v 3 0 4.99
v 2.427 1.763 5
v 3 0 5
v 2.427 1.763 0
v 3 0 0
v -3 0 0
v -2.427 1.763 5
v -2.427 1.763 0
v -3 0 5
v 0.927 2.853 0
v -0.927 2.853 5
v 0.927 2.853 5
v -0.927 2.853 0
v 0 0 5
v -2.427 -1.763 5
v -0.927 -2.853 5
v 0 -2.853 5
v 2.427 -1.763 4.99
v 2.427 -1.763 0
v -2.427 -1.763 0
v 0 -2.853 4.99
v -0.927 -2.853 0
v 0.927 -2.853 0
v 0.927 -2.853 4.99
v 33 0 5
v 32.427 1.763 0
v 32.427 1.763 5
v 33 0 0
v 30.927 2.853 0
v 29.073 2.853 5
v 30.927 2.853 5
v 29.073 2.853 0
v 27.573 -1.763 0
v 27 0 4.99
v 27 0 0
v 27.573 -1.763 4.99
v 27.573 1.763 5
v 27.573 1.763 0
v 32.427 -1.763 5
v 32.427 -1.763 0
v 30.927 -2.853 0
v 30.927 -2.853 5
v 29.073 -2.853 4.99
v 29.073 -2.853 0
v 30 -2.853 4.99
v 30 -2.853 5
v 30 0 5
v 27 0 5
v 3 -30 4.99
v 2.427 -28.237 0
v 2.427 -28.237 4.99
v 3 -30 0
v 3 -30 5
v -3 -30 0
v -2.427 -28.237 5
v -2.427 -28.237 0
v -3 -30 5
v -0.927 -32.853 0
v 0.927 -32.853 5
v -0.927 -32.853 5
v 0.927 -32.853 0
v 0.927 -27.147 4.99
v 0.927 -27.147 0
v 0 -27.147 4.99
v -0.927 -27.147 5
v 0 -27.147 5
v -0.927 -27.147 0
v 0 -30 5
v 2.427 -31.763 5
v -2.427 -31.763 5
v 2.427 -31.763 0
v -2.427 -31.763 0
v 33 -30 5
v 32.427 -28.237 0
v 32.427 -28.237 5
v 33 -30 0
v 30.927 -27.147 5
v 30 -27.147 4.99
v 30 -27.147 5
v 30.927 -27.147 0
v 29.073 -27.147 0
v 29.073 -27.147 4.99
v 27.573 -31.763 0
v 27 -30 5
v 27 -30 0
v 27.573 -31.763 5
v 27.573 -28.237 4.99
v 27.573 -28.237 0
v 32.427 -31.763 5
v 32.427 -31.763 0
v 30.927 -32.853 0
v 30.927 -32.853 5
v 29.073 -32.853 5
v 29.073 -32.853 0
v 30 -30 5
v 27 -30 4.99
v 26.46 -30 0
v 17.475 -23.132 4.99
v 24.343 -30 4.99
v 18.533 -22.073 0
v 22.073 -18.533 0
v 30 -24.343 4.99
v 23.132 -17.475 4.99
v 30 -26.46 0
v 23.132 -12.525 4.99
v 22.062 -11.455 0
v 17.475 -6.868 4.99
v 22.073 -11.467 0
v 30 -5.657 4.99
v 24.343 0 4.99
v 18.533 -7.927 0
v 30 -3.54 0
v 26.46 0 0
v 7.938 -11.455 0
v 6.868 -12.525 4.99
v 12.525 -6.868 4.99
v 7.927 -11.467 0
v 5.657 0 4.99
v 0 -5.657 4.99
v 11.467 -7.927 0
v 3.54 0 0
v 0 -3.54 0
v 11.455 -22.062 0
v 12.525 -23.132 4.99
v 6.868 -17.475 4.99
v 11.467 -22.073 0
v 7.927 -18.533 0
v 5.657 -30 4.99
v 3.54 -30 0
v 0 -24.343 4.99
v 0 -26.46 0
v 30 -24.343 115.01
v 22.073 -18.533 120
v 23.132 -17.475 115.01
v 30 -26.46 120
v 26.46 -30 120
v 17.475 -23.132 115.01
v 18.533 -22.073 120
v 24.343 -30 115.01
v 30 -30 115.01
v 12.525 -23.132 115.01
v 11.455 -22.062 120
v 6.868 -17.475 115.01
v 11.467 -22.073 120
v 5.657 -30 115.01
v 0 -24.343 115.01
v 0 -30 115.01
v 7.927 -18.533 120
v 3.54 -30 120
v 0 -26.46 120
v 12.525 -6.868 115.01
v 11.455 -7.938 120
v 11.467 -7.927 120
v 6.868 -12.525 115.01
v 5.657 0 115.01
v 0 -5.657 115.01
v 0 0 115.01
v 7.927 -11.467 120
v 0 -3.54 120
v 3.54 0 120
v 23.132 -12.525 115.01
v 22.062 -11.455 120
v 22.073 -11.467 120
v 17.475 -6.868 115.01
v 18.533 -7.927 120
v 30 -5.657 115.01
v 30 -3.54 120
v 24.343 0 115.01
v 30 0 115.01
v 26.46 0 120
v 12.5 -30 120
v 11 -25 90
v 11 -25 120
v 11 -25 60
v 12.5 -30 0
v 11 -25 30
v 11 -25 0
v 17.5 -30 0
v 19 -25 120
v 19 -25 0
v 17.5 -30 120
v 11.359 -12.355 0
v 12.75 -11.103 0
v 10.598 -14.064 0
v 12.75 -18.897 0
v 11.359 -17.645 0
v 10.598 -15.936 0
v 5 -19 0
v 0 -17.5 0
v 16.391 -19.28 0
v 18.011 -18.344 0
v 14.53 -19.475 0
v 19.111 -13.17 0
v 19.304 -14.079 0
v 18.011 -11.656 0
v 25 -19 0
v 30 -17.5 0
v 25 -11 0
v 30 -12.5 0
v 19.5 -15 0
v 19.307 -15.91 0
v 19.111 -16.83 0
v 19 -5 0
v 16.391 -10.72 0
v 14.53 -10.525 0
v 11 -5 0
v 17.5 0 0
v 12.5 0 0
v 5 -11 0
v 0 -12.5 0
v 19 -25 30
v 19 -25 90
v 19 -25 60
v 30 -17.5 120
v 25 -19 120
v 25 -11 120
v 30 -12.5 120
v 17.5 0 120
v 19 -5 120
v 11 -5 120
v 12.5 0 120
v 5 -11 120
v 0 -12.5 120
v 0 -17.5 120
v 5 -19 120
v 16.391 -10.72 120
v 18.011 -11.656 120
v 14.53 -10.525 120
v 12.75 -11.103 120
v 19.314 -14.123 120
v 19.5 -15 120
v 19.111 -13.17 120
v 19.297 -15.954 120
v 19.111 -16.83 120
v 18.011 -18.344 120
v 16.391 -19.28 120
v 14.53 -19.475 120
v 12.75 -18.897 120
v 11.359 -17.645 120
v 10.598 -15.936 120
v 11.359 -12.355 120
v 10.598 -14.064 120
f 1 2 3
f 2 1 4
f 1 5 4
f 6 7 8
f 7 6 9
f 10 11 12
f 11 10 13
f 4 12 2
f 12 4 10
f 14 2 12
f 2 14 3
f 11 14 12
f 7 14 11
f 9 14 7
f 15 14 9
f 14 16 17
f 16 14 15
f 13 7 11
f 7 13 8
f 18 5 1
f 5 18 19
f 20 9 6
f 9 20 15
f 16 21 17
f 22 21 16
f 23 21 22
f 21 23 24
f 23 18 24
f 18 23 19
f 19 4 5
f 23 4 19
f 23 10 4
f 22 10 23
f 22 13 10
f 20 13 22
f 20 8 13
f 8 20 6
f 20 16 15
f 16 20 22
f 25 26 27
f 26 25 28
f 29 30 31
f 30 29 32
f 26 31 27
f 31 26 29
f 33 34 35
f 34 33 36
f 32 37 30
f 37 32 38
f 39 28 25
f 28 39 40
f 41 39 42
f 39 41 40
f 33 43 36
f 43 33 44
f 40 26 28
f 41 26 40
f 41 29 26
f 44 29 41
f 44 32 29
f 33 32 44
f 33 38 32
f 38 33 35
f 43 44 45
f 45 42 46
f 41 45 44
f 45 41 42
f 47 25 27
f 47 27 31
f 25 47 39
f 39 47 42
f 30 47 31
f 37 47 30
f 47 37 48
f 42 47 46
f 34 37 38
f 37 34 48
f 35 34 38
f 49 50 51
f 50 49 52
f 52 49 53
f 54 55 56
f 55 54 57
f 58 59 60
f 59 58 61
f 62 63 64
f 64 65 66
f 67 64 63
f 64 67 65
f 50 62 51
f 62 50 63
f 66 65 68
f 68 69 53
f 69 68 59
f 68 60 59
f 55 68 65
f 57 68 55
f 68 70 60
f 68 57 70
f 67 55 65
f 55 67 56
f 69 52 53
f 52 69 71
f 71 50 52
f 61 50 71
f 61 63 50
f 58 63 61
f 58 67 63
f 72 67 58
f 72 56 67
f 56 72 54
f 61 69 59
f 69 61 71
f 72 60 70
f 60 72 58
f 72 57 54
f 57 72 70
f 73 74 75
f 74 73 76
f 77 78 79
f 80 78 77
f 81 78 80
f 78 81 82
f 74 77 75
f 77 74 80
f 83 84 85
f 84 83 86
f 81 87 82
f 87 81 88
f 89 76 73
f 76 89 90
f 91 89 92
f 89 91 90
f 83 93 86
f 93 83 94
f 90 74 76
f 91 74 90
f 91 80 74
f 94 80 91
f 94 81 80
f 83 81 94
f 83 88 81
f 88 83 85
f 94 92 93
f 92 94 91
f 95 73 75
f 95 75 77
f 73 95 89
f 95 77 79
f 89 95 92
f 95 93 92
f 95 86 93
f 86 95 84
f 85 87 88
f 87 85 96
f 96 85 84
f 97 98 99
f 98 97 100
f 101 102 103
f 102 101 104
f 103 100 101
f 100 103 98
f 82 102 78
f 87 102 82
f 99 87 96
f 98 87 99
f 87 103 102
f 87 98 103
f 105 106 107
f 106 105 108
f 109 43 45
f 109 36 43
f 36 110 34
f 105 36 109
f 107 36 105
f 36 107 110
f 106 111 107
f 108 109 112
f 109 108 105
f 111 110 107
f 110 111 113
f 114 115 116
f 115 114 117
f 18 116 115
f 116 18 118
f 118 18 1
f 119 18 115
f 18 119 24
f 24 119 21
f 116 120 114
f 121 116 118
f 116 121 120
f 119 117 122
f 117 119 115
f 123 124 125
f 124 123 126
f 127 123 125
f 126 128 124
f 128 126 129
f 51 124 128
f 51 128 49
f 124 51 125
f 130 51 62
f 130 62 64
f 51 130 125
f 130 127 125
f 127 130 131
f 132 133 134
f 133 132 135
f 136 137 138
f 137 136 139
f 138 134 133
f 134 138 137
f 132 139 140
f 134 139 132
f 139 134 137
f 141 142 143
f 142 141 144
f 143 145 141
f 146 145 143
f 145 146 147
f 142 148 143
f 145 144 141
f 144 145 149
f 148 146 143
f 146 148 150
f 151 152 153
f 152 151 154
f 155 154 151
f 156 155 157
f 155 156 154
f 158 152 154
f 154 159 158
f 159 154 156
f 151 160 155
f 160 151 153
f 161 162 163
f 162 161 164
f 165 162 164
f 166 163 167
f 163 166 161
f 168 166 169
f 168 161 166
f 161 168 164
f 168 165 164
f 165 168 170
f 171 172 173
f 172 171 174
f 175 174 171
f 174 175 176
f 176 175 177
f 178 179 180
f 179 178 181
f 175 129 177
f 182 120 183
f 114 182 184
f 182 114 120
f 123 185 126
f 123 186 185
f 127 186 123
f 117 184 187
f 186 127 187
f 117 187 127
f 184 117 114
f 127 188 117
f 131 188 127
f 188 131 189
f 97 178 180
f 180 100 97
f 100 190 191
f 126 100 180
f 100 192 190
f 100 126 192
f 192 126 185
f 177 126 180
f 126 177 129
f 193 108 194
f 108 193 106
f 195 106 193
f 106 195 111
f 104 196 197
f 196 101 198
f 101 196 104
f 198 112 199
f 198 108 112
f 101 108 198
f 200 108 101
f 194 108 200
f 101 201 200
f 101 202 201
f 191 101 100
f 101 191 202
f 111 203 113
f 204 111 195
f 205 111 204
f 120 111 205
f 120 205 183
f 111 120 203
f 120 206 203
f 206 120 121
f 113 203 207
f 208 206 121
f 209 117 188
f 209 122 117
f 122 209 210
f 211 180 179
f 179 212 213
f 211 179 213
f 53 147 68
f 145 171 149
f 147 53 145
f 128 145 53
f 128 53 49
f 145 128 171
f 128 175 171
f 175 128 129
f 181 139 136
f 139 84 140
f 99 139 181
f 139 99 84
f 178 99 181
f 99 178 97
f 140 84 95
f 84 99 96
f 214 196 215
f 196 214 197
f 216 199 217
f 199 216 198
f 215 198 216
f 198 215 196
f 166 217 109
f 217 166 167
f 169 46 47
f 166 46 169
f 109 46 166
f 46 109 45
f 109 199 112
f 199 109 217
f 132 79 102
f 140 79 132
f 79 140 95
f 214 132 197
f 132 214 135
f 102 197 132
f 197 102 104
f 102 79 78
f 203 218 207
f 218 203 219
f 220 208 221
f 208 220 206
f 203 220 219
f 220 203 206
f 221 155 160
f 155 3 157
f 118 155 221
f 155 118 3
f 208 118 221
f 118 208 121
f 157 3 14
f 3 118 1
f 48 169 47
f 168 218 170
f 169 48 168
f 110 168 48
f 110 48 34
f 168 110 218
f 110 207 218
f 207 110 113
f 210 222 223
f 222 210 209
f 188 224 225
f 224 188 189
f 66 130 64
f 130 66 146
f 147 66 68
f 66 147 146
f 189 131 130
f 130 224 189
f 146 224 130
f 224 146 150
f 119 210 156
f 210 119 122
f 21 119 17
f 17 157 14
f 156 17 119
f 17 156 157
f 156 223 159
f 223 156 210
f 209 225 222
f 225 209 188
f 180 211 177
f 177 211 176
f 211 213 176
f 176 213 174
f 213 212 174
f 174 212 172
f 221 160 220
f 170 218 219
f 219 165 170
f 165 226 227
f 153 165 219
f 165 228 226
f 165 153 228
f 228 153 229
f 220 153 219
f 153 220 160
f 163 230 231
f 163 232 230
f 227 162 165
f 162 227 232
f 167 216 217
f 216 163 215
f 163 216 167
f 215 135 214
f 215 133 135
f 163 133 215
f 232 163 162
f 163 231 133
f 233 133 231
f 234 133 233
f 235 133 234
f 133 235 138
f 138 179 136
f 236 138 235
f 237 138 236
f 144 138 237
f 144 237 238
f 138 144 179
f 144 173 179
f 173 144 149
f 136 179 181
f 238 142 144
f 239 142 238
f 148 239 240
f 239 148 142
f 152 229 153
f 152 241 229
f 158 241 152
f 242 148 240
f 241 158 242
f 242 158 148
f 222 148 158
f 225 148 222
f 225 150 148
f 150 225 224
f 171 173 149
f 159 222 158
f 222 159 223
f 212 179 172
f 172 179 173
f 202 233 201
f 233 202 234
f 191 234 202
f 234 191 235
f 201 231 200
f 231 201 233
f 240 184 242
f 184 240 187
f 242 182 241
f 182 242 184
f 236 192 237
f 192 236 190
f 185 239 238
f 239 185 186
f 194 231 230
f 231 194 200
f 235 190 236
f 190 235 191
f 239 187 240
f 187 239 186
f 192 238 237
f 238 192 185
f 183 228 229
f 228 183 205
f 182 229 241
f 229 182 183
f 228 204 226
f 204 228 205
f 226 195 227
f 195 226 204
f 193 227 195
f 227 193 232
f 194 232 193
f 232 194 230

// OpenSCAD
// file: globals.scad
/*
Most things in this file is represented as one millimeter, so keep that in mind while changing things.
Some of the setting are not mm but at variables that you can set, such as 2*x=2x and you are setting what x is.
I will try to specify when things are variables and not exact measurements.
*/

obj_leg = 30;
leg_length = 5.5;
small_number = 0.001;
metal_core_rode_global = 5;


///////////////// number of holes /////////////////////
z_hole_number = 8;
other_holes = 8;

///////////////// Pins /////////////////////

//pins that poke out
ball_size = 10;
pin_height = 20;
pin_diameter = 6;


//holes
hole_ball_size = ball_size;
hole_pin_height = pin_height;
hole_pin_diameter = pin_diameter;

///////////////// Z THINGS /////////////////////

berring_slot_width = 7.5;
berring_slot_depth = 6.5;
metal_core_rode = 5;

///////////////// X THINGS /////////////////////

//male dove tails
max_width=8;
min_width=5;
depth=5;
height=obj_leg/2;

//female dove tails, this is found on the y mounts
girl_max_width=11;
girl_min_width=5;
girl_depth=5;
girl_height=obj_leg;


///////////////// Y THINGS /////////////////////
/*
The Y is so normal that all of those global variables at the top should change all of the setting in it, this section is set her incase there are variables set in the future development of this project.
*/
// file: include.scad
//////////////////      END SECTION       //////////////////

	module added_pins(){
		difference(){
			union(){
				translate([30/(15/4),obj_leg*leg_length,30/(15/4)]) pin();
				translate([30/(15/4)+14.5,obj_leg*leg_length,30/(15/4)+14]) pin();
			}
			union(){
							translate([30/(15/4)+13.5,obj_leg*leg_length-20,30/(15/4)+5])cube(size=[2,40,15]);
							translate([30/(15/4)+7.5,obj_leg*leg_length-20,30/(15/4)+15])rotate([0,90,0]) cube(size=[2,40,15]);	

							translate([30/(15/4)-1,obj_leg*leg_length-20,30/(15/4)-8])cube(size=[2,40,15]);
							translate([30/(15/4)-10,obj_leg*leg_length-20,30/(15/4)+1])rotate([0,90,0]) cube(size=[2,40,15]);
			}
		}
	}
	module taken_pins() {
		translate([30/(15/4)+14,obj_leg*leg_length-10,30/(15/4)]) mirror_pin();
		translate([30/(15/4),obj_leg*leg_length-10,30/(15/4)+15]) mirror_pin();
	}


//////////////////      OTHER STUFF       //////////////////

	module holes() {
		rotate([0,0,90]) for(y=[0:other_holes])
		translate([obj_leg+y*15,-15.5,7.5]) union() {
			translate([7.5,0,15]) hole_up();
			hole_down();
		}
	}
	module extend_holes() {
	module top(){
		rotate([0,0,90]) for(y=[0:other_holes+1])
		translate([(30/4)+y*15,-15.5,7.5]) union() {
			translate([7.5,0,15]) hole_up();
		}
	}
	module bottom(){
		rotate([0,0,90]) for(y=[0:other_holes+2])
		translate([(30/4)+y*15,-15.5,7.5]) union() {
			hole_down();
		
}
	}
	union(){
		top();
		bottom();
	}
	}

	module hole() {
		union() {
			rotate([90, 90, 0]) cylinder(h=40, d=hole_pin_diameter, center=true);
			translate([0,7.5,0]) sphere(d=hole_ball_size);
			translate([0,-6,0]) sphere(d=hole_ball_size);
		}
	}
	module hole_up() {
		union() {
			rotate([90, 90, 0]) cylinder(h=40, d=hole_pin_diameter, center=true);
			translate([0,7.5,10]) cylinder(h=hole_pin_height, d=hole_pin_diameter, center=true);
			translate([0,-6,10]) cylinder(h=hole_pin_height, d=hole_pin_diameter, center=true);
			translate([0,7.5,0]) sphere(d=hole_ball_size);
			translate([0,-6,0]) sphere(d=hole_ball_size);
		}
	}
	module hole_down() {
		union() {
			rotate([90, 90, 0]) cylinder(h=40, d=hole_pin_diameter, center=true);
			translate([0,7.5,-10]) cylinder(h=hole_pin_height, d=hole_pin_diameter, center=true);
			translate([0,-6,-10]) cylinder(h=hole_pin_height, d=hole_pin_diameter, center=true);
			translate([0,7.5,0]) sphere(d=hole_ball_size);
			translate([0,-6,0]) sphere(d=hole_ball_size);
		}
	}
	module pin() {
		union() {
			rotate([90, 90, 0]) cylinder(h=pin_height, d=pin_diameter, center=true);
			translate([0,7.5,0]) sphere(d=ball_size);
		}
	}

	module mirror_pin() {
		rotate([90, 90, 0]) cylinder(h=hole_pin_height+small_number, d=hole_pin_diameter, center=true);
		translate([0,-(pin_height-(ball_size/2)),0]) sphere(d=ball_size);
	}


//////////////////      SOME RACK AND Z THINGS       //////////////////

module z_holes() {
    rotate([0,-90,0]) for(z=[0:z_hole_number])
    translate([22.5+z*15,16,-12])
        hole();
}

module pin_cuts() {
	union(){
		cube(size=[2,10,40], center=true);
		rotate([0,0,90]) cube(size=[2,10,40], center=true);
	}
}
module pin_uncut() {
	union(){
		rotate([0, 0, 90]) cylinder(h=hole_pin_height, d=hole_pin_diameter, center=true);
		translate([0,0,10]) sphere(d=ball_hole);
	}
}


module pin_out() {
	union(){
		rotate([0, 0, 90]) cylinder(h=pin_height, d=pin_diameter, center=true);
		translate([0,0,10]) sphere(d= ball_size);
	}
}


module pins_z(){
	difference() {
		pin_out();
		pin_cuts();
	}
}
//////////////////      RACK AND SLIDE     ///////////////////

module straight_pins() {
	for(z=[0:((((obj_leg*leg_length)*2)-(obj_leg*2))/3)/14.5]) rotate([-90,0,0]) translate([z*15,30/(15/4),14]) pins_z();
	for(z=[0:((((obj_leg*leg_length)*2)-(obj_leg*2))/3)/14.5]) rotate([-90,0,0]) translate([z*15,30/(15/4)-14,14]) pins_z();
}
module stagger_pins() {
	for(z=[0:((((obj_leg*leg_length)*2)-(obj_leg*2))/3)/14.5]) rotate([-90,0,0]) translate([z*15,30/(15/4),14]) pins_z();
	for(z=[0:((((obj_leg*leg_length)*2)-(obj_leg*2))/3)/14.5]) rotate([-90,0,0]) translate([z*15+7,30/(15/4)-14,14]) pins_z();
}


//////////////////      DOVE TAIL       //////////////////

module male_dovetail(height) {
	dovetail_3d(max_width,min_width,depth,height);
}

module dovetail_3d(max_width=11, min_width=5, depth=5, height=30) {
	linear_extrude(height=height, convexity=2)
		dovetail_2d(max_width,min_width,depth);
}

module dovetail_2d(max_width=11, min_width=5, depth=5) {
	angle=atan((max_width/2-min_width/2)/depth);
	echo("angle: ", angle);
	polygon(paths=[[0,1,2,3,0]], points=[[-min_width/2,0], [-max_width/2,depth], [max_width/2, depth], [min_width/2,0]]);
}

//bow tie
	module tie_end(height){
				rotate([0,0,0]) translate([0,-0.01,((obj_leg/2)/2)]) male_dovetail(height);
				rotate([0,90,0]) translate([0,-0.01,((obj_leg/2)/2)]) male_dovetail(height);
				rotate([0,180,0]) translate([0,-0.01,((obj_leg/2)/2)]) male_dovetail(height);
				rotate([0,-90,0]) translate([0,-0.01,((obj_leg/2)/2)]) male_dovetail(height);
	}

module bow_support(){
	difference(){
		intersection(){
			translate([-15,0,-15]) cube([30,9,30]);
			scale([1.05,1.05,1.05]) rotate([0,45,0]) tie_end();
		}
		cube([29.2,29.2,29.2], center=true);
	}
}

	module wrap(){
		depth = 30;
				translate([-15,30,15]) rotate([90,180,90]) male_dovetail(height=depth);
				rotate([0,90,0]) translate([-15,30,15]) rotate([90,180,90]) male_dovetail(height=depth);
				rotate([0,180,0]) translate([-15,30,15]) rotate([90,180,90]) male_dovetail(height=depth);
				rotate([0,-90,0]) translate([-15,30,15]) rotate([90,180,90]) male_dovetail(height=depth);
	}
// main file
include <include.scad>;
include <globals.scad>;
metal_rod_size = 9;
support = true;
//min number of units is 2
//max is however large your printer can print
units = 4;

module extention(){
	
	module added(){
			translate([0,0,0]) cube([30,30*units,30]);
	}

	module subtracted(){
		
	translate([15,0,15]) rotate([0,45,0]) tie_end();
	translate([15,units*30,15]) rotate([0,45,0]) rotate([0,0,180]) tie_end();
	translate([15,15,15]) rotate([90,0,0]) cylinder(h=5000, d= metal_rod_size, center=true);

	for (y = [-1:units-2]) // two iterations, z = -1, z = 1
	{
			translate([15, (y*30)+15, 15]){
			for (r = [0:4]) // two iterations, z = -1, z = 1
			{
				rotate([0,r*90,0]) translate([0,15,15]) rotate([-90,0,0])male_dovetail(height=30);
			}
		}
	}

	} //subtracted
	difference(){
		added();
		subtracted();
	}	
} //module extention

	module holes(){
		//rotate([0,90,0]) translate([-15,7,0]) cylinder(h=40, d=6, $fn=20);
		//rotate([0,90,0]) translate([-15,0+(units*30)-7,0]) cylinder(h=40, d=6, $fn=20);
		//translate([15,7,0]) cylinder(h=40, d=6, $fn=20);
		//translate([15,0+(units*30)-7,0]) cylinder(h=40, d=6, $fn=20);
	}

//support
if (support==true)
{
	translate([0,0,5/2]) cylinder(h=5, d=6, center=true);
	translate([30,0,5/2]) cylinder(h=5, d=6, center=true);
	translate([0,-30,5/2]) cylinder(h=5, d=6, center=true);
	translate([30,-30,5/2]) cylinder(h=5, d=6, center=true);
}


difference(){
	rotate([90,0,0]) extention();
	holes();
}
